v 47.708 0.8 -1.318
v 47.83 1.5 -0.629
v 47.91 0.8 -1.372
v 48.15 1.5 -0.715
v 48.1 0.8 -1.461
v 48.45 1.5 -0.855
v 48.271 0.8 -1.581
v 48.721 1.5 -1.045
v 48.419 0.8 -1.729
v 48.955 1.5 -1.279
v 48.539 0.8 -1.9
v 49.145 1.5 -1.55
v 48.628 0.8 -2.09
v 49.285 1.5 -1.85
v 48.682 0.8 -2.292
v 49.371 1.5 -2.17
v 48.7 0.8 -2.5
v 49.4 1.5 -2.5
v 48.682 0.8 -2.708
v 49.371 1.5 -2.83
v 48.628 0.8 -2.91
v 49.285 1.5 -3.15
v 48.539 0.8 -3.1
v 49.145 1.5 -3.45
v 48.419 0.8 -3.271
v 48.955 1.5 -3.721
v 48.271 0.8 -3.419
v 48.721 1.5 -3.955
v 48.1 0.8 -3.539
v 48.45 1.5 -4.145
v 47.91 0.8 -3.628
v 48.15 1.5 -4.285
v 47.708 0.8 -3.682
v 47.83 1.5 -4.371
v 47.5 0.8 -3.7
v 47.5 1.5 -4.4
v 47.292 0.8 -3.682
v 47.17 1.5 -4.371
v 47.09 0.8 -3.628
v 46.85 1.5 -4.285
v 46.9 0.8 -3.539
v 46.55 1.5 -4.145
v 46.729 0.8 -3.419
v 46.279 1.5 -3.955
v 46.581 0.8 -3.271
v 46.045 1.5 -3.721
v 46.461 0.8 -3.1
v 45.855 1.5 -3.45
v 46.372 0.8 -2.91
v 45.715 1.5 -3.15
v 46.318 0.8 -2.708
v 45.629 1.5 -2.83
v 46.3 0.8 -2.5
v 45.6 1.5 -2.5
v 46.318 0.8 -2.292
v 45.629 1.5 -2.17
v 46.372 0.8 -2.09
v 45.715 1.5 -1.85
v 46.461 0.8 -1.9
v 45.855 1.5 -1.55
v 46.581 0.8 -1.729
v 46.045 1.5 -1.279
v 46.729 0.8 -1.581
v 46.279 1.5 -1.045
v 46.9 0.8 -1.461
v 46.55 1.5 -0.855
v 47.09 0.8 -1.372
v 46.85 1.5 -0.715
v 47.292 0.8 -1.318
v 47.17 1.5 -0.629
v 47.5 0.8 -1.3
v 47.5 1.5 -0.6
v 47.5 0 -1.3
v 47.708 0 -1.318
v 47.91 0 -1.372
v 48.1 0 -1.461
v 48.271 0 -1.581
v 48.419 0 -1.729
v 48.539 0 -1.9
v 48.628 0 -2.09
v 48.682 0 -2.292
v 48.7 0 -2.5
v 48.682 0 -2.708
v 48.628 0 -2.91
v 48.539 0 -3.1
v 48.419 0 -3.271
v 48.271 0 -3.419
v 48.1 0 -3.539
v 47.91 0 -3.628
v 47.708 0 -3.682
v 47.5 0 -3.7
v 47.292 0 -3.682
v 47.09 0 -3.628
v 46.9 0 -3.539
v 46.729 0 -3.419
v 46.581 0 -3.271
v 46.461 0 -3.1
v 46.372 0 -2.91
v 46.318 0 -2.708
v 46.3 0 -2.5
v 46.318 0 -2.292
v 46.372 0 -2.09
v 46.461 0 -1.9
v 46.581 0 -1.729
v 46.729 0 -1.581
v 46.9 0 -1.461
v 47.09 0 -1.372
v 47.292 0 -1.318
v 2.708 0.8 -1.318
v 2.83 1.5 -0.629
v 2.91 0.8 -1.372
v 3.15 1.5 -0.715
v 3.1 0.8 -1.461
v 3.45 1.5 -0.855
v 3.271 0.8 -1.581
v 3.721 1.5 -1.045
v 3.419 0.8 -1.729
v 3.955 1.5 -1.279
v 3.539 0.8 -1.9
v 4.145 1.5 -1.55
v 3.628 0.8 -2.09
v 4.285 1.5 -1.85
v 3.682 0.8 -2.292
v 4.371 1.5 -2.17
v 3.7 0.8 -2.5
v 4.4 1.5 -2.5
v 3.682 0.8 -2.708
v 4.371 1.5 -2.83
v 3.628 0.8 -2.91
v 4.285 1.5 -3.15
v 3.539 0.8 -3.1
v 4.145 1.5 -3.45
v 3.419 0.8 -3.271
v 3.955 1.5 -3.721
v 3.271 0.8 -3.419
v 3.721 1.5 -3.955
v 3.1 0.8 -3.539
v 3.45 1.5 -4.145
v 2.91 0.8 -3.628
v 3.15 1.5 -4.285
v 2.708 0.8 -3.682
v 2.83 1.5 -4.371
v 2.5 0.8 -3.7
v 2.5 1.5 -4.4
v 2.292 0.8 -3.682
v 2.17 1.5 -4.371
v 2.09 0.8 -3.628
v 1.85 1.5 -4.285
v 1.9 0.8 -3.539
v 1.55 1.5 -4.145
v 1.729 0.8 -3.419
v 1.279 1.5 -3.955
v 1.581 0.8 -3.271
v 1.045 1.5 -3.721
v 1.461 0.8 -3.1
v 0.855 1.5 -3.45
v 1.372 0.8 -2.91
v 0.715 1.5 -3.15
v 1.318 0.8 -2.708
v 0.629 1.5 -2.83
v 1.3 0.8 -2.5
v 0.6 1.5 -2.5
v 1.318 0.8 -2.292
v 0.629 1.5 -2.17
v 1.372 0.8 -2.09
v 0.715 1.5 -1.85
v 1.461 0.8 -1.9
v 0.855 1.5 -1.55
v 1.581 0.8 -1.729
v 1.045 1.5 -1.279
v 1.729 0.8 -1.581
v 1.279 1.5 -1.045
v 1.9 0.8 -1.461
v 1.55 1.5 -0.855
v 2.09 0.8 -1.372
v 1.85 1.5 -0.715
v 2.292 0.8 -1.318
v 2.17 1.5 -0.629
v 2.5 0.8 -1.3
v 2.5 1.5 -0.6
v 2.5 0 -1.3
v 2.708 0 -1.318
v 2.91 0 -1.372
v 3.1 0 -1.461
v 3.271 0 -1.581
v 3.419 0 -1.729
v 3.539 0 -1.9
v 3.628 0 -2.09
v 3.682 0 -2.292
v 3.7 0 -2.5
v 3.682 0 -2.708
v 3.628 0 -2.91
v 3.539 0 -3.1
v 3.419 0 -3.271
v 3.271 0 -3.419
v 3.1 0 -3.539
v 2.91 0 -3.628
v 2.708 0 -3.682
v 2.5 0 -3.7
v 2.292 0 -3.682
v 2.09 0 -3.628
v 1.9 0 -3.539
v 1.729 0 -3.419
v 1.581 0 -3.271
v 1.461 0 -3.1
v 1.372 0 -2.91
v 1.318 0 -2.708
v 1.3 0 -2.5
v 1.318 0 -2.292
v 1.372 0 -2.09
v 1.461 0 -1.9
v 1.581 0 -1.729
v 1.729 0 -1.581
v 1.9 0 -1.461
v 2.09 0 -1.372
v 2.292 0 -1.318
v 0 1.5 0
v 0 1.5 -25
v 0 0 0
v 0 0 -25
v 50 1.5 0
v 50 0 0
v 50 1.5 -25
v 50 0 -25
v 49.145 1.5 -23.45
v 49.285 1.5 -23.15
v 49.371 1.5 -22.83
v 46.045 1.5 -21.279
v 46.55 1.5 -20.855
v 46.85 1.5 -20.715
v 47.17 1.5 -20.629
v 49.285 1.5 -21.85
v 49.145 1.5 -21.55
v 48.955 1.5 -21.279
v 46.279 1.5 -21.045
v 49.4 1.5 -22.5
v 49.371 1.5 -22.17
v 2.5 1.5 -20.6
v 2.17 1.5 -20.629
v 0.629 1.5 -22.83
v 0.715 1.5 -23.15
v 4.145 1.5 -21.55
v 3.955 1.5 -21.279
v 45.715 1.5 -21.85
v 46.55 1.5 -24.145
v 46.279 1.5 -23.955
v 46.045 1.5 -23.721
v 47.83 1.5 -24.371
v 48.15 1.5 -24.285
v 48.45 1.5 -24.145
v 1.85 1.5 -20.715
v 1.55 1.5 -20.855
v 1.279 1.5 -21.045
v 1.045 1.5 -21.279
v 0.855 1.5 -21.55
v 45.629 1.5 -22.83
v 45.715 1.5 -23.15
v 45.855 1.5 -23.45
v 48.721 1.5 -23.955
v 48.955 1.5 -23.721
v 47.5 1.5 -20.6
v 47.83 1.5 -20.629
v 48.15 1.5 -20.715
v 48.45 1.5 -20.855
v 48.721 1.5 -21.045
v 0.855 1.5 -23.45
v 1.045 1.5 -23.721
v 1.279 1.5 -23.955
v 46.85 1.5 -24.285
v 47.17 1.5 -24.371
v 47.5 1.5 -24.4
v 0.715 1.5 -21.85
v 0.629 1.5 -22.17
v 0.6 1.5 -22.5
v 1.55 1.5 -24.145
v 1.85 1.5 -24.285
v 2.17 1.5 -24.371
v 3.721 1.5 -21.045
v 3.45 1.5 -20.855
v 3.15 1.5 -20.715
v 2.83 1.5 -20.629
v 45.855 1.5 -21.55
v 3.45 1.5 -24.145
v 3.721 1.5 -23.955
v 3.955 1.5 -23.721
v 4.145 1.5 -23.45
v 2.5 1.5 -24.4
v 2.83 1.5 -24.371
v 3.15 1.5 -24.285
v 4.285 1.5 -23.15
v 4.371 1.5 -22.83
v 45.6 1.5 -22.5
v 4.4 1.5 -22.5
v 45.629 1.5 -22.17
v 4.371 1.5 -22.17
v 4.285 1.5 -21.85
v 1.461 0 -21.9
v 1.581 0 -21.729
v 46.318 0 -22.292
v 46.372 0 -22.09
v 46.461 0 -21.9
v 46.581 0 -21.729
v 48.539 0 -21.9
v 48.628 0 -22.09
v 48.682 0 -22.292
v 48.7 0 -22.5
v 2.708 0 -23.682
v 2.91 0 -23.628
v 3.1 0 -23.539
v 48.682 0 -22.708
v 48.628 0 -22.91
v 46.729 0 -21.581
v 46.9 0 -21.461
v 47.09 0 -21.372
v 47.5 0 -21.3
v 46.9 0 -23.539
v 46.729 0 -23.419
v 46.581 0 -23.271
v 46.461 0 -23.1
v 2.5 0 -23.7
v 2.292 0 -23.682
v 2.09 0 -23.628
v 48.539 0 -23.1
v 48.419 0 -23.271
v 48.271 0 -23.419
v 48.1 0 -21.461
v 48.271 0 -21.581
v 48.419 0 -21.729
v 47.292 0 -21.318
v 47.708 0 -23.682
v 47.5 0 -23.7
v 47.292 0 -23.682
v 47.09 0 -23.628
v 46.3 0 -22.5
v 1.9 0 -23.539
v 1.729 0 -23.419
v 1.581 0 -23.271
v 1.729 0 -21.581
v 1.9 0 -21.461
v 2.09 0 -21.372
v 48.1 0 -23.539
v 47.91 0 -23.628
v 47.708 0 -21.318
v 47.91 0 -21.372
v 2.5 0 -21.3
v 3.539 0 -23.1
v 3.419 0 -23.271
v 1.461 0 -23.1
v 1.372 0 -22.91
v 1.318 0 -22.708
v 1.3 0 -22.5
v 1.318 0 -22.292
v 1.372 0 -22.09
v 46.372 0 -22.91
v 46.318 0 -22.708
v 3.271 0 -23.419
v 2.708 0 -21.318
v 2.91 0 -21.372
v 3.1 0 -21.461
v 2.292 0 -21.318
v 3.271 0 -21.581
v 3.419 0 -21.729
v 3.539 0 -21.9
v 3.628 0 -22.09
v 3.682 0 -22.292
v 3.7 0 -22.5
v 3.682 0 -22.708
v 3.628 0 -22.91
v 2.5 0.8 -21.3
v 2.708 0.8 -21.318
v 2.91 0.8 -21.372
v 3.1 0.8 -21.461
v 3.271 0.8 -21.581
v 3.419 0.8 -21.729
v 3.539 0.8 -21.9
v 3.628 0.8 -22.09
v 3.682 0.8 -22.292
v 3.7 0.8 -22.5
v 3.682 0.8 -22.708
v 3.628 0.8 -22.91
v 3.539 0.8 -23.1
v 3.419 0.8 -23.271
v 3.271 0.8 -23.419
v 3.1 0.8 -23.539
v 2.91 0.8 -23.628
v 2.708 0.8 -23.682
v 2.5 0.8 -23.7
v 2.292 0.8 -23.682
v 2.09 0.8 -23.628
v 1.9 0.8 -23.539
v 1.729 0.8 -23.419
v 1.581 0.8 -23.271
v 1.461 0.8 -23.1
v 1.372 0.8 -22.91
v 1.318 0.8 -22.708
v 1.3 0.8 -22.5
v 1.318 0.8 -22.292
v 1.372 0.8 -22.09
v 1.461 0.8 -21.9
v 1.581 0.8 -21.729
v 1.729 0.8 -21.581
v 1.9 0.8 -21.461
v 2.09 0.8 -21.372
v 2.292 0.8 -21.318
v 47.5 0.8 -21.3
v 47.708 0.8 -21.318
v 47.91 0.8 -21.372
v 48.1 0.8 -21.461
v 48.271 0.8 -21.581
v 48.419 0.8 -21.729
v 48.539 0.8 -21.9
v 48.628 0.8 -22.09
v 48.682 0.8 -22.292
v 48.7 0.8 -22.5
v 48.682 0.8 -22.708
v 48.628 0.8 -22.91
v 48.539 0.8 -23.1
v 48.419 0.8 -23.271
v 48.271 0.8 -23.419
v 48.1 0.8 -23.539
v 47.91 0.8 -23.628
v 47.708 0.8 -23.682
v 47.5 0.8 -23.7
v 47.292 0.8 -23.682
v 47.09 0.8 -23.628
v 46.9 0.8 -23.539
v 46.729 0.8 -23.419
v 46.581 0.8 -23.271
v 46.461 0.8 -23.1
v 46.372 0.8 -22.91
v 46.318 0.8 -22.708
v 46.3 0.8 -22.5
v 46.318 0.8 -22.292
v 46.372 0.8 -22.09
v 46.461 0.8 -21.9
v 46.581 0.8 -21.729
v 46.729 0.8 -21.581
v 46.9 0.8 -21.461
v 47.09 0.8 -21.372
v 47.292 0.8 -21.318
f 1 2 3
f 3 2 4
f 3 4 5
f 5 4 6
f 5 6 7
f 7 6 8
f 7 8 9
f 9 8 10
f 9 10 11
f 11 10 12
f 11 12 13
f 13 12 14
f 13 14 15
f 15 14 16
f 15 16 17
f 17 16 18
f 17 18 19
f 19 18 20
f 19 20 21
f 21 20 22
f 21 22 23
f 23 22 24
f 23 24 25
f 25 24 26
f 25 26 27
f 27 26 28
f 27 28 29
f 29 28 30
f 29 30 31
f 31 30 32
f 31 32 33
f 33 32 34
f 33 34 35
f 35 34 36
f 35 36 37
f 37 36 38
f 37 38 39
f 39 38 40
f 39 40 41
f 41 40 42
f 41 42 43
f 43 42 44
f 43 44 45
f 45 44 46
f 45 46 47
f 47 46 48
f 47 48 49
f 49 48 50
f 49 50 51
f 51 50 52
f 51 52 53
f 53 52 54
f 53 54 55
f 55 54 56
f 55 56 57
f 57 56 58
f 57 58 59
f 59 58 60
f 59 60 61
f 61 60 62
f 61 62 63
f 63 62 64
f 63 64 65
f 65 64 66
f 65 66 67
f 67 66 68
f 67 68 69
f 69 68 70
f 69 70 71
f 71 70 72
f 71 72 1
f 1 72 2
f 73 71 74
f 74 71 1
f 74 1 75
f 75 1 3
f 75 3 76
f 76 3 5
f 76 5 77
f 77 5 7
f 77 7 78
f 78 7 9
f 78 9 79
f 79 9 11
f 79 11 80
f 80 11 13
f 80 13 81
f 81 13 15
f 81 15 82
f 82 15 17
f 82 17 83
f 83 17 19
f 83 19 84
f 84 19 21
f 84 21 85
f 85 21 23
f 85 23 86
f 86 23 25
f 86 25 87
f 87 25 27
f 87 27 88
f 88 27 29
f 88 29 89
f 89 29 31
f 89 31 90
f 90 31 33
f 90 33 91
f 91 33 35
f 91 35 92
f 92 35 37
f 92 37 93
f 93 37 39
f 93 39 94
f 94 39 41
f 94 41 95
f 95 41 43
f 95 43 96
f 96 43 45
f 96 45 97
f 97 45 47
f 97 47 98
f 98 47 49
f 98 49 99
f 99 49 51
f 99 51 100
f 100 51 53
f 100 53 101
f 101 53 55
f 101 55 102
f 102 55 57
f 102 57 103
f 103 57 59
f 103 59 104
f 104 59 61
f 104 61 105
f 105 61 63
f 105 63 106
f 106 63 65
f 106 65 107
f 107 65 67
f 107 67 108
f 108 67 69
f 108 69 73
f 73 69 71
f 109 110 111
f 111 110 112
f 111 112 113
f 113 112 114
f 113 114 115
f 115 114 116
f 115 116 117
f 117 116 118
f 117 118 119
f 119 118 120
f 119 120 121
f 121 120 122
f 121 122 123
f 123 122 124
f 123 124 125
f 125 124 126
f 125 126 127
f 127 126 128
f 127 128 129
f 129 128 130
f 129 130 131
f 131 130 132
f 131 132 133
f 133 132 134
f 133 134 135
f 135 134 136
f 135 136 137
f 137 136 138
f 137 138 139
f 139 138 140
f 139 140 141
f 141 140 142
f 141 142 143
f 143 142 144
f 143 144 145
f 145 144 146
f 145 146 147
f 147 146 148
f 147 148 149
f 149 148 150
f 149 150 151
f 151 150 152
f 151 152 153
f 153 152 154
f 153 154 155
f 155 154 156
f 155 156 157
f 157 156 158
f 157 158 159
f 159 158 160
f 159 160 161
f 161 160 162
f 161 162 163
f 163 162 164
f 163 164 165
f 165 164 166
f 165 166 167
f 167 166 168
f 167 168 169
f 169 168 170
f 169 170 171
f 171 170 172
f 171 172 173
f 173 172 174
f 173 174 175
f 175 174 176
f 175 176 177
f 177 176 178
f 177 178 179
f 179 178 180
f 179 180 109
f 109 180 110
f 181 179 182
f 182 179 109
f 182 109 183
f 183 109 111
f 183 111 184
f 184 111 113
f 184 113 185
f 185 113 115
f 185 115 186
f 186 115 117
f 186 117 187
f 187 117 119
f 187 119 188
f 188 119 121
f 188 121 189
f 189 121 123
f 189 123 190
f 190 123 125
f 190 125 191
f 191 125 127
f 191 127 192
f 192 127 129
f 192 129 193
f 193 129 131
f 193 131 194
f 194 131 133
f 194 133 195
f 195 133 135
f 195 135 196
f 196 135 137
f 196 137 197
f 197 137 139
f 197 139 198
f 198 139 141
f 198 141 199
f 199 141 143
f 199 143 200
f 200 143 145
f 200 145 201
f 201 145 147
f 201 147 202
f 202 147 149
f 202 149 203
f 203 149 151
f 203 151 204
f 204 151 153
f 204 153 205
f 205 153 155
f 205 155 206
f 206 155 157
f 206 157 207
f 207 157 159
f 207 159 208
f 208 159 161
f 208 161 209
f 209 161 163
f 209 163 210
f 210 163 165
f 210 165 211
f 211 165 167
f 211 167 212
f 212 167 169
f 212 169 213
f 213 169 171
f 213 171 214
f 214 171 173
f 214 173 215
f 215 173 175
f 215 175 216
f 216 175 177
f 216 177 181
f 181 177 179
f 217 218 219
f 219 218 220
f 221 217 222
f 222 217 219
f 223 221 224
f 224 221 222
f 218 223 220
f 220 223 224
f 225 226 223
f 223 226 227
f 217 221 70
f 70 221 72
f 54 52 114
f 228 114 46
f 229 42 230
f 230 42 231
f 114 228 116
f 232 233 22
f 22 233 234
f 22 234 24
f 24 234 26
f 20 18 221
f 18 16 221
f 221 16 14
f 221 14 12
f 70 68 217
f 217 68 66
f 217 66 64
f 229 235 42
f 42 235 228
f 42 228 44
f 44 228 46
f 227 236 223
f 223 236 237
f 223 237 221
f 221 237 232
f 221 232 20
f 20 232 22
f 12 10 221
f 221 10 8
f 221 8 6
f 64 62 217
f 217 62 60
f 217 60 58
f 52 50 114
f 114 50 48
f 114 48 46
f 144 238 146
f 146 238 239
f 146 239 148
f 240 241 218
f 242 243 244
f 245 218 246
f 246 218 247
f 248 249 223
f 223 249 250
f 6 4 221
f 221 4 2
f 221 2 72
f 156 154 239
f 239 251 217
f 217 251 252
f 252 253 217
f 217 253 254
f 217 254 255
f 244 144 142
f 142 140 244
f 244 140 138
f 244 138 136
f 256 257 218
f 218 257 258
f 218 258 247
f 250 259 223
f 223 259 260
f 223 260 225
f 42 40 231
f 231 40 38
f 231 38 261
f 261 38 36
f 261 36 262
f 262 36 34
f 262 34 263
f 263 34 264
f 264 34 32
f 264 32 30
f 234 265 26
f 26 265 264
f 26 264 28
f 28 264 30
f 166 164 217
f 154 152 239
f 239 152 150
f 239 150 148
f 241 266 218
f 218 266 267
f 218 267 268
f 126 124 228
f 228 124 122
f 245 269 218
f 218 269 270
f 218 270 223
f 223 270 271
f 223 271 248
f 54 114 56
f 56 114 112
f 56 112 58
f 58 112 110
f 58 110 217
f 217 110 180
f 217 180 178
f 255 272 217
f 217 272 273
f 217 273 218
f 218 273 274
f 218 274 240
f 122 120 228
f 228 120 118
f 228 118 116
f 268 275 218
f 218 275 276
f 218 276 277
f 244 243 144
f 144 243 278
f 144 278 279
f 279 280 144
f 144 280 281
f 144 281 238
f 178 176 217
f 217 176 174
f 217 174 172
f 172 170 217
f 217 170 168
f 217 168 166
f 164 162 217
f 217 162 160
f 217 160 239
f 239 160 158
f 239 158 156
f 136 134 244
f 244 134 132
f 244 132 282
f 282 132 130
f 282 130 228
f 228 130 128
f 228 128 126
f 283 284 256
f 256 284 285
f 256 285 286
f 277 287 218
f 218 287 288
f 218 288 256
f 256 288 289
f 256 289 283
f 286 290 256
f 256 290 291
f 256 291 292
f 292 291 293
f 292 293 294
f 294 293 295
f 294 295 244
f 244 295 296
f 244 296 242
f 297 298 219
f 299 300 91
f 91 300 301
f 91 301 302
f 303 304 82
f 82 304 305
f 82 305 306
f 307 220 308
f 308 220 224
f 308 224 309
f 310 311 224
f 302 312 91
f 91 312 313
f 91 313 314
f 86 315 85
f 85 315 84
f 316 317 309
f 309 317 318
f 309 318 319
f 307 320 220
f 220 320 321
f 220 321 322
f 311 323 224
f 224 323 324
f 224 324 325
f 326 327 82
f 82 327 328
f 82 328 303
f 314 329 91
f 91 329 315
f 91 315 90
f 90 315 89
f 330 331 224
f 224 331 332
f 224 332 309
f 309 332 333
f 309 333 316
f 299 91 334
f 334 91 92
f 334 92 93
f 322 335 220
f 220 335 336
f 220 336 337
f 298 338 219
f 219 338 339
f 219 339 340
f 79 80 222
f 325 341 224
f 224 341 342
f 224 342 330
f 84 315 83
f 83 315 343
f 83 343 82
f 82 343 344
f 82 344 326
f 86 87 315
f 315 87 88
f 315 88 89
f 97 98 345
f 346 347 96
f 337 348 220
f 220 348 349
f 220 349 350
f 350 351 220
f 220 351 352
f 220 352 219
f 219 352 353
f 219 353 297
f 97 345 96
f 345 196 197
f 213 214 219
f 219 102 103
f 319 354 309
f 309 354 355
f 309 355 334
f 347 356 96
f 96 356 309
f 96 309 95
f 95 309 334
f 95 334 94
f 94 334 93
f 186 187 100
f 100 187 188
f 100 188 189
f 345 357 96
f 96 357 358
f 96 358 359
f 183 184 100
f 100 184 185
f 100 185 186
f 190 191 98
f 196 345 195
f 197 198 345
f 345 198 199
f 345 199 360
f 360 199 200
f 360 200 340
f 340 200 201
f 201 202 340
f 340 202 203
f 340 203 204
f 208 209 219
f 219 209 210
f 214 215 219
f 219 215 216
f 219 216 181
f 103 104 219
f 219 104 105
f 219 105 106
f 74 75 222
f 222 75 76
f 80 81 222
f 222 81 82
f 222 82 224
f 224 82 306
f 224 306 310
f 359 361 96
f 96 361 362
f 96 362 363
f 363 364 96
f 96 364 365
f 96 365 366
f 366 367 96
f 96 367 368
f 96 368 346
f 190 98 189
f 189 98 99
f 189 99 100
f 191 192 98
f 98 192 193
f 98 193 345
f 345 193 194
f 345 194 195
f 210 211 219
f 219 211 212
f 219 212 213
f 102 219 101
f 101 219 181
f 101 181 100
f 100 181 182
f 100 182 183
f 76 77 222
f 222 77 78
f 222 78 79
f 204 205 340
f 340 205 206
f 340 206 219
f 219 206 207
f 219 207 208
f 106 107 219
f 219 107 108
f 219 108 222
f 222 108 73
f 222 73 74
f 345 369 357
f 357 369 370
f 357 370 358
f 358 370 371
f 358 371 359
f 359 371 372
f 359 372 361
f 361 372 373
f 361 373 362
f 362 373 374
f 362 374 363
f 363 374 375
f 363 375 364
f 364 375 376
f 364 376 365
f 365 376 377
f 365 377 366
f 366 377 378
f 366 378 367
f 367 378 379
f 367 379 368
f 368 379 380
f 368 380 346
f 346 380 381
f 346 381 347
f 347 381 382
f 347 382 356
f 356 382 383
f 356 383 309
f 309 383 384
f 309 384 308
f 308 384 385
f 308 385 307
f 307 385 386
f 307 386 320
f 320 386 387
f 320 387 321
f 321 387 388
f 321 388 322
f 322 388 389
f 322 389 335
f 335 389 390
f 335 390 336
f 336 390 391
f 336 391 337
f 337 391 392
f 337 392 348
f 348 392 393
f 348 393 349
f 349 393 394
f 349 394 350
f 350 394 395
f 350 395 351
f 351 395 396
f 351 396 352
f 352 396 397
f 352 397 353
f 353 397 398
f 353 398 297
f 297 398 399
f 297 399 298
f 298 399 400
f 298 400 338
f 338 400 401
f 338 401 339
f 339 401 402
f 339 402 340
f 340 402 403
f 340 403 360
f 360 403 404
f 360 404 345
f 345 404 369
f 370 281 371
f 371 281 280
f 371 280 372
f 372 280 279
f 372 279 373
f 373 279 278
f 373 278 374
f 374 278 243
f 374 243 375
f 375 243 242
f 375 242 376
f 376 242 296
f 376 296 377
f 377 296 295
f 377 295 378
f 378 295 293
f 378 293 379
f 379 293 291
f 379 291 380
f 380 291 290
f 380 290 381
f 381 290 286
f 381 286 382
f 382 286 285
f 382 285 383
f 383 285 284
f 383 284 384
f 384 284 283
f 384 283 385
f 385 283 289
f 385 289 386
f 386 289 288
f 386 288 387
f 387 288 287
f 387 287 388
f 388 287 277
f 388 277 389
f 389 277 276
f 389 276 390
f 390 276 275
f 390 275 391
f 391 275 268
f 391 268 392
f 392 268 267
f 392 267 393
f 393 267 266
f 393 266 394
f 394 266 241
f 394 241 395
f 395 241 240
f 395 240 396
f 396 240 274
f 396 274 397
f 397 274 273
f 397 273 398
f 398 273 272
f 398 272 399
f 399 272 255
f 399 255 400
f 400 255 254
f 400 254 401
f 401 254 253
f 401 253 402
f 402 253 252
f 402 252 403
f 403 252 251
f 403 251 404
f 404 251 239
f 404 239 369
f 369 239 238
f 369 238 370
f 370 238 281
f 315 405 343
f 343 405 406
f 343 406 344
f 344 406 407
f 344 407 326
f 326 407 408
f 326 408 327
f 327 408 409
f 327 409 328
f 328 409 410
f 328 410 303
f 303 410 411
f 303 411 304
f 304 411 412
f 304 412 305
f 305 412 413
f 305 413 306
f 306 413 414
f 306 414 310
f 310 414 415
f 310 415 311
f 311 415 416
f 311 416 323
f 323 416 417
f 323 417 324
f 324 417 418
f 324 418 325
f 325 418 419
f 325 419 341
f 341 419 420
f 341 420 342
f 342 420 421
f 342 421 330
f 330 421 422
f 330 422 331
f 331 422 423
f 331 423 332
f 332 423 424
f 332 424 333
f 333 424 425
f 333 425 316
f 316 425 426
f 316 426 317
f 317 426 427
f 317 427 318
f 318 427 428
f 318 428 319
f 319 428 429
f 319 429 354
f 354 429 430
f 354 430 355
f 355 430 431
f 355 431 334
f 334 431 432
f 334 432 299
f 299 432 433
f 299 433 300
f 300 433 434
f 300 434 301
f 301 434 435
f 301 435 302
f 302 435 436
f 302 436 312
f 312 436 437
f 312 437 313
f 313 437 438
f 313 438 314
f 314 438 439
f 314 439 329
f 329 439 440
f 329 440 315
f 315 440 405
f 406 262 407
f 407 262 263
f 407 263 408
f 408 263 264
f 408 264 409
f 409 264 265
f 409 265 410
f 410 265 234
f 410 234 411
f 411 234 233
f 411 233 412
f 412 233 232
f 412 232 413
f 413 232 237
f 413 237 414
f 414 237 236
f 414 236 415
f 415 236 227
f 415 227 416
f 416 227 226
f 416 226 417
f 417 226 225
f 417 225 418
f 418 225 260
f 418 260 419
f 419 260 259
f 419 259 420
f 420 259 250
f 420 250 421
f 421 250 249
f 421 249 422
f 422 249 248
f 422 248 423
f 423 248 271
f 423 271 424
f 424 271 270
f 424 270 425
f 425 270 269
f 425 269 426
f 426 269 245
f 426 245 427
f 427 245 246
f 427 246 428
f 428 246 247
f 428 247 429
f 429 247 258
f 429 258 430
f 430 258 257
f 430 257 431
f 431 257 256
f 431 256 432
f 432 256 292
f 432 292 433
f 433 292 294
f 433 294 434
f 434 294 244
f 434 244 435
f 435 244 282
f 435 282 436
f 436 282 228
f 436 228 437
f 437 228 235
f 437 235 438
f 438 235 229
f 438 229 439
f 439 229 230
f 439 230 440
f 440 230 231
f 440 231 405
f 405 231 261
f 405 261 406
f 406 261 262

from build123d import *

# Parameters (mm, degrees)
SKETCH_1_W                  = 50
SKETCH_1_H                  = 25
EXTRUDE_1_DEPTH             = 1.5
PATTERN_LINEAR_1_COUNT      = 2
PATTERN_LINEAR_1_PITCH      = 45
PATTERN_LINEAR_1_COUNT_DIR2 = 2
PATTERN_LINEAR_1_PITCH_DIR2 = 20


with BuildPart() as part:
    # 草图1 → 凸台-拉伸1 (new body)
    with BuildSketch(Plane(origin=(0, 0, 0), x_dir=(1, 0, 0), z_dir=(0, 1, 0))):
        with Locations((25, 12.5)):
            Rectangle(SKETCH_1_W, SKETCH_1_H)
    extrude(amount=EXTRUDE_1_DEPTH)

    # 草图3 → M2 平头机械螺钉的锥形沉头孔1 (revolve, cut)
    with BuildSketch(Plane(origin=(2.5, 1.5, -22.5), x_dir=(0, 0, 1), z_dir=(1, 0, 0))):
        Polygon((0, 0), (0, 8.721032743), (1.2, 8), (1.2, 0.7), (1.9, 0), align=None)
    hole_wizard_m2_1 = revolve(axis=Axis((2.5, 7.85, -22.5), (0, -1, 0)), mode=Mode.SUBTRACT)

    # 阵列(线性)1: Hole Wizard M2 _1 2 × 2
    with Locations(*[(i * PATTERN_LINEAR_1_PITCH, 0, j * PATTERN_LINEAR_1_PITCH_DIR2) for i in range(PATTERN_LINEAR_1_COUNT) for j in range(PATTERN_LINEAR_1_COUNT_DIR2) if (i, j) != (0, 0)]):
        add(hole_wizard_m2_1, mode=Mode.SUBTRACT)


solid = part.part
